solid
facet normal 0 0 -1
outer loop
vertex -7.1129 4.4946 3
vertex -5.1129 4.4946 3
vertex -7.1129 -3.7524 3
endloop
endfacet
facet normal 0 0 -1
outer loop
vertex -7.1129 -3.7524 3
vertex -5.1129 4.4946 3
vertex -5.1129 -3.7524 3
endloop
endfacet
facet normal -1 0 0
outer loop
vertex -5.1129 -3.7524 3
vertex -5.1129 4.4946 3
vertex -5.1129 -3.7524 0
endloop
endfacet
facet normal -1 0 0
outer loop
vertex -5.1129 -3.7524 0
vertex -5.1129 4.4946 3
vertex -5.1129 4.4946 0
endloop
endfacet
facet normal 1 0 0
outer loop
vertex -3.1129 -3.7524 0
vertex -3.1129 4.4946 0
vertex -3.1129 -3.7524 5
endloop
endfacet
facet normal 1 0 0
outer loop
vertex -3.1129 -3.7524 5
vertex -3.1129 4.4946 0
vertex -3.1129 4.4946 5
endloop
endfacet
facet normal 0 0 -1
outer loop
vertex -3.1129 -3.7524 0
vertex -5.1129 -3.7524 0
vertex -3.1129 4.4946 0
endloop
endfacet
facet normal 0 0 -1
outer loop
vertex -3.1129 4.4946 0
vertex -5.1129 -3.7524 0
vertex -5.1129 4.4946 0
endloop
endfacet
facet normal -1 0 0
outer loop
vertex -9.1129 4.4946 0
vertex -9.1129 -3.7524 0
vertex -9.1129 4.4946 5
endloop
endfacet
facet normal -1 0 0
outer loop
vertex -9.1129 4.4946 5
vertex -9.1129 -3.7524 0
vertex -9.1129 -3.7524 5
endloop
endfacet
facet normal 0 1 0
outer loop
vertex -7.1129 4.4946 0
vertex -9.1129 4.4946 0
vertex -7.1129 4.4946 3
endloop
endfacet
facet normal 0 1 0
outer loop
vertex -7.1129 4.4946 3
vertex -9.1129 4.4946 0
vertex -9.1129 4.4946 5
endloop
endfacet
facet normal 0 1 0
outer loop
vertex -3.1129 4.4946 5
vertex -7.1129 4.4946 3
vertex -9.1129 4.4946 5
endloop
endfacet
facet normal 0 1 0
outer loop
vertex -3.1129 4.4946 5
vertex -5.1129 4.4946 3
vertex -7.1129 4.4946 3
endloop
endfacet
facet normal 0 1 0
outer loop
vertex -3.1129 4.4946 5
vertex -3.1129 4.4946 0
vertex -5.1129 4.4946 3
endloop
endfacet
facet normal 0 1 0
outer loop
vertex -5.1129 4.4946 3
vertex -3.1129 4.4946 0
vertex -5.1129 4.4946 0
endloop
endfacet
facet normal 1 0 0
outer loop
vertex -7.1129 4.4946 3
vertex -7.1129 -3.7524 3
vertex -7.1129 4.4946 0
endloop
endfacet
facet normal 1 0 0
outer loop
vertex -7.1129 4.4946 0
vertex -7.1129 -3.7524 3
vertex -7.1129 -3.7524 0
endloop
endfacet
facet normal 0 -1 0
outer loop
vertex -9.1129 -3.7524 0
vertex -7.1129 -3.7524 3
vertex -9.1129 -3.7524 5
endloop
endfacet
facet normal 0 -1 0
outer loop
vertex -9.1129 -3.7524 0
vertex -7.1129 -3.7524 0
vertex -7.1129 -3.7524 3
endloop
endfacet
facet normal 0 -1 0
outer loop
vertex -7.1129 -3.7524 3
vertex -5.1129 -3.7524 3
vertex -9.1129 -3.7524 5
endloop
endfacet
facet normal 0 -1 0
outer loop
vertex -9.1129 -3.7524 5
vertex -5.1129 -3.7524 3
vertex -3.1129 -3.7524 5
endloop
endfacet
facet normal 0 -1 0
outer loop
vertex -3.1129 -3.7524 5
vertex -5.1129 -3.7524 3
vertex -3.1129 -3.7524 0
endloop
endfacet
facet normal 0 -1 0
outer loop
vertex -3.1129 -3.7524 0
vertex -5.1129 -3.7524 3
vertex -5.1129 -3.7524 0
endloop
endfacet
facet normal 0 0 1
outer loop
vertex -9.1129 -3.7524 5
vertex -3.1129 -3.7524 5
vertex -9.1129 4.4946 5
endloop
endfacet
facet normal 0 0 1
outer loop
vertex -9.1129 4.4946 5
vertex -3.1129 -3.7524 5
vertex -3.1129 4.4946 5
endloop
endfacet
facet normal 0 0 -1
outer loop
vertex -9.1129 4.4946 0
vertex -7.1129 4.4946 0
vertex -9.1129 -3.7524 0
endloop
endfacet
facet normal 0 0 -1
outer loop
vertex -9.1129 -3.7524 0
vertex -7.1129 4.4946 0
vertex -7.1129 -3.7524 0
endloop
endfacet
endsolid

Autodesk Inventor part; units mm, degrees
ref_plane "YZ Plane" through (0, 0, 0) normal (1, 0, 0) x (0, 1, 0)
ref_plane "XZ Plane" through (0, 0, 0) normal (0, 1, 0) x (-1, 0, 0)
ref_plane "XY Plane" through (0, 0, 0) normal (0, 0, 1) x (1, 0, 0)
sketch "Sketch1" plane through (0, 0, 0) normal (0, 0, 1) x (1, 0, 0)
  line L0 (-9.1129, 4.4946) -> (-3.1129, 4.4946)
  line L1 (-3.1129, 4.4946) -> (-3.1129, -3.7524)
  line L2 (-3.1129, -3.7524) -> (-9.1129, -3.7524)
  line L3 (-9.1129, -3.7524) -> (-9.1129, 4.4946)
  line L4 (-9.1129, 4.4946) -> (-7.1129, 4.4946)
  line L5 (-7.1129, 4.4946) -> (-7.1129, -3.7524)
  line L6 (-7.1129, -3.7524) -> (-9.1129, -3.7524)
  line L7 (-9.1129, -3.7524) -> (-9.1129, 4.4946)
  line L8 (-3.1129, 4.4946) -> (-5.1129, 4.4946)
  line L9 (-5.1129, 4.4946) -> (-5.1129, -3.7524)
  line L10 (-5.1129, -3.7524) -> (-3.1129, -3.7524)
  line L11 (-3.1129, -3.7524) -> (-3.1129, 4.4946)
  point P0 (0, 0)
  dimension "d0" = 6
  dimension "d1" = 2
  dimension "d2" = 2
extrude "Extrusion1" add sketch "Sketch1" along normal blind 5 contours L0 L5 L2 L3 | L0 L1 L2 L9
sketch "Sketch2" plane through (0, 0, 5) normal (0, 0, 1) x (1, 0, 0)
  line L0 (-9.1129, 4.4946) -> (-3.1129, 4.4946)
  line L1 (-3.1129, 4.4946) -> (-3.1129, -3.7524)
  line L2 (-3.1129, -3.7524) -> (-9.1129, -3.7524)
  line L3 (-9.1129, -3.7524) -> (-9.1129, 4.4946)
  point P0 (0, 0)
extrude "Extrusion2" add sketch "Sketch2" against normal blind 2
properties part number "Roller ver2"
